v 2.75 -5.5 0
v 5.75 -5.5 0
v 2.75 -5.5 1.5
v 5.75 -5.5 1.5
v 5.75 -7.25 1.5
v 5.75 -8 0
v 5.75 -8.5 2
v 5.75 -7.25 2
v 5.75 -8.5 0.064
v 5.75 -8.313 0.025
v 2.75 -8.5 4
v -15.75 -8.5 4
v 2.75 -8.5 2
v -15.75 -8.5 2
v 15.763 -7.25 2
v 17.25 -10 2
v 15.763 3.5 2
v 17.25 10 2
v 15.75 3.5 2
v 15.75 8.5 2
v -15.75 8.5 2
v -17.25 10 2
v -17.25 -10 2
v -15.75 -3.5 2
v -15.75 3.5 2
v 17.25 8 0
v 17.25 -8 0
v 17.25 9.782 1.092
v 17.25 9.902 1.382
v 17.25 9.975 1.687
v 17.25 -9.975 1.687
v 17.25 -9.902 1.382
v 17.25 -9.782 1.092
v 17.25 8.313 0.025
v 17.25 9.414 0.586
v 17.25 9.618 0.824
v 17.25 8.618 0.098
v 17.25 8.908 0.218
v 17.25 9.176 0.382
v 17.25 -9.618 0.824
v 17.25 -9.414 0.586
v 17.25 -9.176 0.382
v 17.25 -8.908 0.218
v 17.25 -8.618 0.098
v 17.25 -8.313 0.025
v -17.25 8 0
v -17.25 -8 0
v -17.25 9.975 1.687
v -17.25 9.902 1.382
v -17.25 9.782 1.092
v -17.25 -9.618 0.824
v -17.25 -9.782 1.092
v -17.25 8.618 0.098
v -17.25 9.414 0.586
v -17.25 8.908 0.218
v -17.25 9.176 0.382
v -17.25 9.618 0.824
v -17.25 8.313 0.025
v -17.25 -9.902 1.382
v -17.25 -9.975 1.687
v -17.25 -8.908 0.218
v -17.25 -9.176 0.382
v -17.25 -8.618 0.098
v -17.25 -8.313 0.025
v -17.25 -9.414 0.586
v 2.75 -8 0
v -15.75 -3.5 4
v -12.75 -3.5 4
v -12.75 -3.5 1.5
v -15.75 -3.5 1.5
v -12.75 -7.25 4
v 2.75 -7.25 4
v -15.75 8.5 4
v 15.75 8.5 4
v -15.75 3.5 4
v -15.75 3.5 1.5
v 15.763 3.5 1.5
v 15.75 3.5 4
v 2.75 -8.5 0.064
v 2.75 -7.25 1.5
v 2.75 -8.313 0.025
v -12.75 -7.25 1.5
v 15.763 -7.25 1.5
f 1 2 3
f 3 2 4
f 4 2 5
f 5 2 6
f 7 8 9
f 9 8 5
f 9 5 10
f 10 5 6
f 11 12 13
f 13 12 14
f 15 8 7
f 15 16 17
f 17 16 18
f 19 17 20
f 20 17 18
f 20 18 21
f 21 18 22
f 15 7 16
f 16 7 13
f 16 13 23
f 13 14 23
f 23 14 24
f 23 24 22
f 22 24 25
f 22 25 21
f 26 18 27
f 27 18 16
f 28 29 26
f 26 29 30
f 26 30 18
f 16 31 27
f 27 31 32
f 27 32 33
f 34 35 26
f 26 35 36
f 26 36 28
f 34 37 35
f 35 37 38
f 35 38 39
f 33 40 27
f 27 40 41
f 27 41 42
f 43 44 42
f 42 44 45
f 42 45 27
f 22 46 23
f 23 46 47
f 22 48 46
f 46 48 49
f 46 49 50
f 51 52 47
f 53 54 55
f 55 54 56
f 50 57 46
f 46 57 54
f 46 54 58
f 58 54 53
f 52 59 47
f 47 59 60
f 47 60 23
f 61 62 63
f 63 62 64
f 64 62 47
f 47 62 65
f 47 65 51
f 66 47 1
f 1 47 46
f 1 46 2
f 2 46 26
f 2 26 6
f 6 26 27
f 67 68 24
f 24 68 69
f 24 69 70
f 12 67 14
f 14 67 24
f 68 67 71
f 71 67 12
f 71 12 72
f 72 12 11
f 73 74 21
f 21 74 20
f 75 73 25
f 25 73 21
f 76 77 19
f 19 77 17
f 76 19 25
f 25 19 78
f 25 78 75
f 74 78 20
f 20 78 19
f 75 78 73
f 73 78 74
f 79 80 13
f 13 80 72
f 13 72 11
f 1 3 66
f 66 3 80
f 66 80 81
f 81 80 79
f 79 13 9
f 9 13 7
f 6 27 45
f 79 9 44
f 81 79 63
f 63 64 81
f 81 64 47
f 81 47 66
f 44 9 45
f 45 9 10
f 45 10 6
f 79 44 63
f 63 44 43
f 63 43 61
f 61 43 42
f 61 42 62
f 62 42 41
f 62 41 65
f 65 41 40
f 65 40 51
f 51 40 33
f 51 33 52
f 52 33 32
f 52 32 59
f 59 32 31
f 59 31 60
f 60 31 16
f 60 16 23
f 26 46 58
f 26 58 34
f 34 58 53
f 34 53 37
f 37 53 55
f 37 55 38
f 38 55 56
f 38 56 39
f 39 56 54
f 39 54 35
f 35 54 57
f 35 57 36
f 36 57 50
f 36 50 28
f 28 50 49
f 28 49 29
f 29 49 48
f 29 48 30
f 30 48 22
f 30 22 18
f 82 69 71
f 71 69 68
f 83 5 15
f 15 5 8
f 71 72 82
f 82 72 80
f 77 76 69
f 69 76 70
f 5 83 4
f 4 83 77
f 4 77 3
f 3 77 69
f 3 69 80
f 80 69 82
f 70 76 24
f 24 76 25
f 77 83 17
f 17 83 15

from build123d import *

# Parameters (mm, degrees)
SKETCH1_W           = 34.5
SKETCH1_H           = 20
BOSS_EXTRUDE1_DEPTH = 2
SKETCH2_W           = 31.5
SKETCH2_H           = 5
BOSS_EXTRUDE2_DEPTH = 2
SKETCH3_W           = 3
SKETCH3_H           = 3
CUT_EXTRUDE1_DEPTH  = 10
FILLET1_R           = 2
CUT_EXTRUDE2_DEPTH  = 2
CUT_EXTRUDE3_DEPTH  = 2.5


with BuildPart() as part:
    # Sketch1 → Boss-Extrude1 (new body)
    with BuildSketch(Plane.XY):
        Rectangle(SKETCH1_W, SKETCH1_H)
    extrude(amount=BOSS_EXTRUDE1_DEPTH)

    # Sketch2 → Boss-Extrude2 (add)
    with BuildSketch(Plane.XY.offset(2)):
        with Locations((0, 6)):
            Rectangle(SKETCH2_W, SKETCH2_H)
        with Locations((0, -6)):
            Rectangle(SKETCH2_W, SKETCH2_H)
    extrude(amount=BOSS_EXTRUDE2_DEPTH)

    # Sketch3 → Cut-Extrude1 (cut)
    with BuildSketch(Plane(origin=(0, 0, 0), x_dir=(-1, 0, 0), z_dir=(0, 0, -1))):
        with Locations((-4.25, -7)):
            Rectangle(SKETCH3_W, SKETCH3_H)
    extrude(amount=-CUT_EXTRUDE1_DEPTH, mode=Mode.SUBTRACT)

    # Fillet1
    # the kernel refuses this fillet: 2 mm, written as the material it takes off along each edge
    with BuildSketch(Plane(origin=(22.25, -10, 0), x_dir=(0, 1, 0), z_dir=(-1, 0, 0))) as fillet1_piece_1:
        with BuildLine():
            CenterArc((FILLET1_R, -FILLET1_R), FILLET1_R, 90, 90)
            Line((0, -FILLET1_R), (0, 0))
            Line((0, 0), (FILLET1_R, 0))
        make_face()
    extrude(amount=44.5, mode=Mode.SUBTRACT)
    with BuildSketch(Plane(origin=(-22.25, 10, 0), x_dir=(0, 0, 1), z_dir=(1, 0, 0))) as fillet1_piece_2:
        with BuildLine():
            CenterArc((FILLET1_R, FILLET1_R), FILLET1_R, 180, 90)
            Line((0, FILLET1_R), (0, 0))
            Line((0, 0), (FILLET1_R, 0))
        make_face()
    extrude(amount=44.5, mode=Mode.SUBTRACT)

    # Sketch4 → Cut-Extrude2 (cut)
    with BuildSketch(Plane.XY.offset(4)):
        Polygon((15.75, -8.5), (5.75, -8.5), (5.75, -5.5), (-12.75, -5.5), (-12.75, -3.5), (5.75, -3.5), (15.75, -3.5), align=None)
    extrude(amount=-CUT_EXTRUDE2_DEPTH, mode=Mode.SUBTRACT)

    # Sketch6 → Cut-Extrude3 (cut)
    with BuildSketch(Plane.XY.offset(4)):
        Polygon((-15.75, 3.5), (15.762886562, 3.5), (15.762886562, -7.25), (-12.75, -7.25), (-12.75, -3.5), (-15.75, -3.5), align=None)
    extrude(amount=-CUT_EXTRUDE3_DEPTH, mode=Mode.SUBTRACT)


solid = part.part
